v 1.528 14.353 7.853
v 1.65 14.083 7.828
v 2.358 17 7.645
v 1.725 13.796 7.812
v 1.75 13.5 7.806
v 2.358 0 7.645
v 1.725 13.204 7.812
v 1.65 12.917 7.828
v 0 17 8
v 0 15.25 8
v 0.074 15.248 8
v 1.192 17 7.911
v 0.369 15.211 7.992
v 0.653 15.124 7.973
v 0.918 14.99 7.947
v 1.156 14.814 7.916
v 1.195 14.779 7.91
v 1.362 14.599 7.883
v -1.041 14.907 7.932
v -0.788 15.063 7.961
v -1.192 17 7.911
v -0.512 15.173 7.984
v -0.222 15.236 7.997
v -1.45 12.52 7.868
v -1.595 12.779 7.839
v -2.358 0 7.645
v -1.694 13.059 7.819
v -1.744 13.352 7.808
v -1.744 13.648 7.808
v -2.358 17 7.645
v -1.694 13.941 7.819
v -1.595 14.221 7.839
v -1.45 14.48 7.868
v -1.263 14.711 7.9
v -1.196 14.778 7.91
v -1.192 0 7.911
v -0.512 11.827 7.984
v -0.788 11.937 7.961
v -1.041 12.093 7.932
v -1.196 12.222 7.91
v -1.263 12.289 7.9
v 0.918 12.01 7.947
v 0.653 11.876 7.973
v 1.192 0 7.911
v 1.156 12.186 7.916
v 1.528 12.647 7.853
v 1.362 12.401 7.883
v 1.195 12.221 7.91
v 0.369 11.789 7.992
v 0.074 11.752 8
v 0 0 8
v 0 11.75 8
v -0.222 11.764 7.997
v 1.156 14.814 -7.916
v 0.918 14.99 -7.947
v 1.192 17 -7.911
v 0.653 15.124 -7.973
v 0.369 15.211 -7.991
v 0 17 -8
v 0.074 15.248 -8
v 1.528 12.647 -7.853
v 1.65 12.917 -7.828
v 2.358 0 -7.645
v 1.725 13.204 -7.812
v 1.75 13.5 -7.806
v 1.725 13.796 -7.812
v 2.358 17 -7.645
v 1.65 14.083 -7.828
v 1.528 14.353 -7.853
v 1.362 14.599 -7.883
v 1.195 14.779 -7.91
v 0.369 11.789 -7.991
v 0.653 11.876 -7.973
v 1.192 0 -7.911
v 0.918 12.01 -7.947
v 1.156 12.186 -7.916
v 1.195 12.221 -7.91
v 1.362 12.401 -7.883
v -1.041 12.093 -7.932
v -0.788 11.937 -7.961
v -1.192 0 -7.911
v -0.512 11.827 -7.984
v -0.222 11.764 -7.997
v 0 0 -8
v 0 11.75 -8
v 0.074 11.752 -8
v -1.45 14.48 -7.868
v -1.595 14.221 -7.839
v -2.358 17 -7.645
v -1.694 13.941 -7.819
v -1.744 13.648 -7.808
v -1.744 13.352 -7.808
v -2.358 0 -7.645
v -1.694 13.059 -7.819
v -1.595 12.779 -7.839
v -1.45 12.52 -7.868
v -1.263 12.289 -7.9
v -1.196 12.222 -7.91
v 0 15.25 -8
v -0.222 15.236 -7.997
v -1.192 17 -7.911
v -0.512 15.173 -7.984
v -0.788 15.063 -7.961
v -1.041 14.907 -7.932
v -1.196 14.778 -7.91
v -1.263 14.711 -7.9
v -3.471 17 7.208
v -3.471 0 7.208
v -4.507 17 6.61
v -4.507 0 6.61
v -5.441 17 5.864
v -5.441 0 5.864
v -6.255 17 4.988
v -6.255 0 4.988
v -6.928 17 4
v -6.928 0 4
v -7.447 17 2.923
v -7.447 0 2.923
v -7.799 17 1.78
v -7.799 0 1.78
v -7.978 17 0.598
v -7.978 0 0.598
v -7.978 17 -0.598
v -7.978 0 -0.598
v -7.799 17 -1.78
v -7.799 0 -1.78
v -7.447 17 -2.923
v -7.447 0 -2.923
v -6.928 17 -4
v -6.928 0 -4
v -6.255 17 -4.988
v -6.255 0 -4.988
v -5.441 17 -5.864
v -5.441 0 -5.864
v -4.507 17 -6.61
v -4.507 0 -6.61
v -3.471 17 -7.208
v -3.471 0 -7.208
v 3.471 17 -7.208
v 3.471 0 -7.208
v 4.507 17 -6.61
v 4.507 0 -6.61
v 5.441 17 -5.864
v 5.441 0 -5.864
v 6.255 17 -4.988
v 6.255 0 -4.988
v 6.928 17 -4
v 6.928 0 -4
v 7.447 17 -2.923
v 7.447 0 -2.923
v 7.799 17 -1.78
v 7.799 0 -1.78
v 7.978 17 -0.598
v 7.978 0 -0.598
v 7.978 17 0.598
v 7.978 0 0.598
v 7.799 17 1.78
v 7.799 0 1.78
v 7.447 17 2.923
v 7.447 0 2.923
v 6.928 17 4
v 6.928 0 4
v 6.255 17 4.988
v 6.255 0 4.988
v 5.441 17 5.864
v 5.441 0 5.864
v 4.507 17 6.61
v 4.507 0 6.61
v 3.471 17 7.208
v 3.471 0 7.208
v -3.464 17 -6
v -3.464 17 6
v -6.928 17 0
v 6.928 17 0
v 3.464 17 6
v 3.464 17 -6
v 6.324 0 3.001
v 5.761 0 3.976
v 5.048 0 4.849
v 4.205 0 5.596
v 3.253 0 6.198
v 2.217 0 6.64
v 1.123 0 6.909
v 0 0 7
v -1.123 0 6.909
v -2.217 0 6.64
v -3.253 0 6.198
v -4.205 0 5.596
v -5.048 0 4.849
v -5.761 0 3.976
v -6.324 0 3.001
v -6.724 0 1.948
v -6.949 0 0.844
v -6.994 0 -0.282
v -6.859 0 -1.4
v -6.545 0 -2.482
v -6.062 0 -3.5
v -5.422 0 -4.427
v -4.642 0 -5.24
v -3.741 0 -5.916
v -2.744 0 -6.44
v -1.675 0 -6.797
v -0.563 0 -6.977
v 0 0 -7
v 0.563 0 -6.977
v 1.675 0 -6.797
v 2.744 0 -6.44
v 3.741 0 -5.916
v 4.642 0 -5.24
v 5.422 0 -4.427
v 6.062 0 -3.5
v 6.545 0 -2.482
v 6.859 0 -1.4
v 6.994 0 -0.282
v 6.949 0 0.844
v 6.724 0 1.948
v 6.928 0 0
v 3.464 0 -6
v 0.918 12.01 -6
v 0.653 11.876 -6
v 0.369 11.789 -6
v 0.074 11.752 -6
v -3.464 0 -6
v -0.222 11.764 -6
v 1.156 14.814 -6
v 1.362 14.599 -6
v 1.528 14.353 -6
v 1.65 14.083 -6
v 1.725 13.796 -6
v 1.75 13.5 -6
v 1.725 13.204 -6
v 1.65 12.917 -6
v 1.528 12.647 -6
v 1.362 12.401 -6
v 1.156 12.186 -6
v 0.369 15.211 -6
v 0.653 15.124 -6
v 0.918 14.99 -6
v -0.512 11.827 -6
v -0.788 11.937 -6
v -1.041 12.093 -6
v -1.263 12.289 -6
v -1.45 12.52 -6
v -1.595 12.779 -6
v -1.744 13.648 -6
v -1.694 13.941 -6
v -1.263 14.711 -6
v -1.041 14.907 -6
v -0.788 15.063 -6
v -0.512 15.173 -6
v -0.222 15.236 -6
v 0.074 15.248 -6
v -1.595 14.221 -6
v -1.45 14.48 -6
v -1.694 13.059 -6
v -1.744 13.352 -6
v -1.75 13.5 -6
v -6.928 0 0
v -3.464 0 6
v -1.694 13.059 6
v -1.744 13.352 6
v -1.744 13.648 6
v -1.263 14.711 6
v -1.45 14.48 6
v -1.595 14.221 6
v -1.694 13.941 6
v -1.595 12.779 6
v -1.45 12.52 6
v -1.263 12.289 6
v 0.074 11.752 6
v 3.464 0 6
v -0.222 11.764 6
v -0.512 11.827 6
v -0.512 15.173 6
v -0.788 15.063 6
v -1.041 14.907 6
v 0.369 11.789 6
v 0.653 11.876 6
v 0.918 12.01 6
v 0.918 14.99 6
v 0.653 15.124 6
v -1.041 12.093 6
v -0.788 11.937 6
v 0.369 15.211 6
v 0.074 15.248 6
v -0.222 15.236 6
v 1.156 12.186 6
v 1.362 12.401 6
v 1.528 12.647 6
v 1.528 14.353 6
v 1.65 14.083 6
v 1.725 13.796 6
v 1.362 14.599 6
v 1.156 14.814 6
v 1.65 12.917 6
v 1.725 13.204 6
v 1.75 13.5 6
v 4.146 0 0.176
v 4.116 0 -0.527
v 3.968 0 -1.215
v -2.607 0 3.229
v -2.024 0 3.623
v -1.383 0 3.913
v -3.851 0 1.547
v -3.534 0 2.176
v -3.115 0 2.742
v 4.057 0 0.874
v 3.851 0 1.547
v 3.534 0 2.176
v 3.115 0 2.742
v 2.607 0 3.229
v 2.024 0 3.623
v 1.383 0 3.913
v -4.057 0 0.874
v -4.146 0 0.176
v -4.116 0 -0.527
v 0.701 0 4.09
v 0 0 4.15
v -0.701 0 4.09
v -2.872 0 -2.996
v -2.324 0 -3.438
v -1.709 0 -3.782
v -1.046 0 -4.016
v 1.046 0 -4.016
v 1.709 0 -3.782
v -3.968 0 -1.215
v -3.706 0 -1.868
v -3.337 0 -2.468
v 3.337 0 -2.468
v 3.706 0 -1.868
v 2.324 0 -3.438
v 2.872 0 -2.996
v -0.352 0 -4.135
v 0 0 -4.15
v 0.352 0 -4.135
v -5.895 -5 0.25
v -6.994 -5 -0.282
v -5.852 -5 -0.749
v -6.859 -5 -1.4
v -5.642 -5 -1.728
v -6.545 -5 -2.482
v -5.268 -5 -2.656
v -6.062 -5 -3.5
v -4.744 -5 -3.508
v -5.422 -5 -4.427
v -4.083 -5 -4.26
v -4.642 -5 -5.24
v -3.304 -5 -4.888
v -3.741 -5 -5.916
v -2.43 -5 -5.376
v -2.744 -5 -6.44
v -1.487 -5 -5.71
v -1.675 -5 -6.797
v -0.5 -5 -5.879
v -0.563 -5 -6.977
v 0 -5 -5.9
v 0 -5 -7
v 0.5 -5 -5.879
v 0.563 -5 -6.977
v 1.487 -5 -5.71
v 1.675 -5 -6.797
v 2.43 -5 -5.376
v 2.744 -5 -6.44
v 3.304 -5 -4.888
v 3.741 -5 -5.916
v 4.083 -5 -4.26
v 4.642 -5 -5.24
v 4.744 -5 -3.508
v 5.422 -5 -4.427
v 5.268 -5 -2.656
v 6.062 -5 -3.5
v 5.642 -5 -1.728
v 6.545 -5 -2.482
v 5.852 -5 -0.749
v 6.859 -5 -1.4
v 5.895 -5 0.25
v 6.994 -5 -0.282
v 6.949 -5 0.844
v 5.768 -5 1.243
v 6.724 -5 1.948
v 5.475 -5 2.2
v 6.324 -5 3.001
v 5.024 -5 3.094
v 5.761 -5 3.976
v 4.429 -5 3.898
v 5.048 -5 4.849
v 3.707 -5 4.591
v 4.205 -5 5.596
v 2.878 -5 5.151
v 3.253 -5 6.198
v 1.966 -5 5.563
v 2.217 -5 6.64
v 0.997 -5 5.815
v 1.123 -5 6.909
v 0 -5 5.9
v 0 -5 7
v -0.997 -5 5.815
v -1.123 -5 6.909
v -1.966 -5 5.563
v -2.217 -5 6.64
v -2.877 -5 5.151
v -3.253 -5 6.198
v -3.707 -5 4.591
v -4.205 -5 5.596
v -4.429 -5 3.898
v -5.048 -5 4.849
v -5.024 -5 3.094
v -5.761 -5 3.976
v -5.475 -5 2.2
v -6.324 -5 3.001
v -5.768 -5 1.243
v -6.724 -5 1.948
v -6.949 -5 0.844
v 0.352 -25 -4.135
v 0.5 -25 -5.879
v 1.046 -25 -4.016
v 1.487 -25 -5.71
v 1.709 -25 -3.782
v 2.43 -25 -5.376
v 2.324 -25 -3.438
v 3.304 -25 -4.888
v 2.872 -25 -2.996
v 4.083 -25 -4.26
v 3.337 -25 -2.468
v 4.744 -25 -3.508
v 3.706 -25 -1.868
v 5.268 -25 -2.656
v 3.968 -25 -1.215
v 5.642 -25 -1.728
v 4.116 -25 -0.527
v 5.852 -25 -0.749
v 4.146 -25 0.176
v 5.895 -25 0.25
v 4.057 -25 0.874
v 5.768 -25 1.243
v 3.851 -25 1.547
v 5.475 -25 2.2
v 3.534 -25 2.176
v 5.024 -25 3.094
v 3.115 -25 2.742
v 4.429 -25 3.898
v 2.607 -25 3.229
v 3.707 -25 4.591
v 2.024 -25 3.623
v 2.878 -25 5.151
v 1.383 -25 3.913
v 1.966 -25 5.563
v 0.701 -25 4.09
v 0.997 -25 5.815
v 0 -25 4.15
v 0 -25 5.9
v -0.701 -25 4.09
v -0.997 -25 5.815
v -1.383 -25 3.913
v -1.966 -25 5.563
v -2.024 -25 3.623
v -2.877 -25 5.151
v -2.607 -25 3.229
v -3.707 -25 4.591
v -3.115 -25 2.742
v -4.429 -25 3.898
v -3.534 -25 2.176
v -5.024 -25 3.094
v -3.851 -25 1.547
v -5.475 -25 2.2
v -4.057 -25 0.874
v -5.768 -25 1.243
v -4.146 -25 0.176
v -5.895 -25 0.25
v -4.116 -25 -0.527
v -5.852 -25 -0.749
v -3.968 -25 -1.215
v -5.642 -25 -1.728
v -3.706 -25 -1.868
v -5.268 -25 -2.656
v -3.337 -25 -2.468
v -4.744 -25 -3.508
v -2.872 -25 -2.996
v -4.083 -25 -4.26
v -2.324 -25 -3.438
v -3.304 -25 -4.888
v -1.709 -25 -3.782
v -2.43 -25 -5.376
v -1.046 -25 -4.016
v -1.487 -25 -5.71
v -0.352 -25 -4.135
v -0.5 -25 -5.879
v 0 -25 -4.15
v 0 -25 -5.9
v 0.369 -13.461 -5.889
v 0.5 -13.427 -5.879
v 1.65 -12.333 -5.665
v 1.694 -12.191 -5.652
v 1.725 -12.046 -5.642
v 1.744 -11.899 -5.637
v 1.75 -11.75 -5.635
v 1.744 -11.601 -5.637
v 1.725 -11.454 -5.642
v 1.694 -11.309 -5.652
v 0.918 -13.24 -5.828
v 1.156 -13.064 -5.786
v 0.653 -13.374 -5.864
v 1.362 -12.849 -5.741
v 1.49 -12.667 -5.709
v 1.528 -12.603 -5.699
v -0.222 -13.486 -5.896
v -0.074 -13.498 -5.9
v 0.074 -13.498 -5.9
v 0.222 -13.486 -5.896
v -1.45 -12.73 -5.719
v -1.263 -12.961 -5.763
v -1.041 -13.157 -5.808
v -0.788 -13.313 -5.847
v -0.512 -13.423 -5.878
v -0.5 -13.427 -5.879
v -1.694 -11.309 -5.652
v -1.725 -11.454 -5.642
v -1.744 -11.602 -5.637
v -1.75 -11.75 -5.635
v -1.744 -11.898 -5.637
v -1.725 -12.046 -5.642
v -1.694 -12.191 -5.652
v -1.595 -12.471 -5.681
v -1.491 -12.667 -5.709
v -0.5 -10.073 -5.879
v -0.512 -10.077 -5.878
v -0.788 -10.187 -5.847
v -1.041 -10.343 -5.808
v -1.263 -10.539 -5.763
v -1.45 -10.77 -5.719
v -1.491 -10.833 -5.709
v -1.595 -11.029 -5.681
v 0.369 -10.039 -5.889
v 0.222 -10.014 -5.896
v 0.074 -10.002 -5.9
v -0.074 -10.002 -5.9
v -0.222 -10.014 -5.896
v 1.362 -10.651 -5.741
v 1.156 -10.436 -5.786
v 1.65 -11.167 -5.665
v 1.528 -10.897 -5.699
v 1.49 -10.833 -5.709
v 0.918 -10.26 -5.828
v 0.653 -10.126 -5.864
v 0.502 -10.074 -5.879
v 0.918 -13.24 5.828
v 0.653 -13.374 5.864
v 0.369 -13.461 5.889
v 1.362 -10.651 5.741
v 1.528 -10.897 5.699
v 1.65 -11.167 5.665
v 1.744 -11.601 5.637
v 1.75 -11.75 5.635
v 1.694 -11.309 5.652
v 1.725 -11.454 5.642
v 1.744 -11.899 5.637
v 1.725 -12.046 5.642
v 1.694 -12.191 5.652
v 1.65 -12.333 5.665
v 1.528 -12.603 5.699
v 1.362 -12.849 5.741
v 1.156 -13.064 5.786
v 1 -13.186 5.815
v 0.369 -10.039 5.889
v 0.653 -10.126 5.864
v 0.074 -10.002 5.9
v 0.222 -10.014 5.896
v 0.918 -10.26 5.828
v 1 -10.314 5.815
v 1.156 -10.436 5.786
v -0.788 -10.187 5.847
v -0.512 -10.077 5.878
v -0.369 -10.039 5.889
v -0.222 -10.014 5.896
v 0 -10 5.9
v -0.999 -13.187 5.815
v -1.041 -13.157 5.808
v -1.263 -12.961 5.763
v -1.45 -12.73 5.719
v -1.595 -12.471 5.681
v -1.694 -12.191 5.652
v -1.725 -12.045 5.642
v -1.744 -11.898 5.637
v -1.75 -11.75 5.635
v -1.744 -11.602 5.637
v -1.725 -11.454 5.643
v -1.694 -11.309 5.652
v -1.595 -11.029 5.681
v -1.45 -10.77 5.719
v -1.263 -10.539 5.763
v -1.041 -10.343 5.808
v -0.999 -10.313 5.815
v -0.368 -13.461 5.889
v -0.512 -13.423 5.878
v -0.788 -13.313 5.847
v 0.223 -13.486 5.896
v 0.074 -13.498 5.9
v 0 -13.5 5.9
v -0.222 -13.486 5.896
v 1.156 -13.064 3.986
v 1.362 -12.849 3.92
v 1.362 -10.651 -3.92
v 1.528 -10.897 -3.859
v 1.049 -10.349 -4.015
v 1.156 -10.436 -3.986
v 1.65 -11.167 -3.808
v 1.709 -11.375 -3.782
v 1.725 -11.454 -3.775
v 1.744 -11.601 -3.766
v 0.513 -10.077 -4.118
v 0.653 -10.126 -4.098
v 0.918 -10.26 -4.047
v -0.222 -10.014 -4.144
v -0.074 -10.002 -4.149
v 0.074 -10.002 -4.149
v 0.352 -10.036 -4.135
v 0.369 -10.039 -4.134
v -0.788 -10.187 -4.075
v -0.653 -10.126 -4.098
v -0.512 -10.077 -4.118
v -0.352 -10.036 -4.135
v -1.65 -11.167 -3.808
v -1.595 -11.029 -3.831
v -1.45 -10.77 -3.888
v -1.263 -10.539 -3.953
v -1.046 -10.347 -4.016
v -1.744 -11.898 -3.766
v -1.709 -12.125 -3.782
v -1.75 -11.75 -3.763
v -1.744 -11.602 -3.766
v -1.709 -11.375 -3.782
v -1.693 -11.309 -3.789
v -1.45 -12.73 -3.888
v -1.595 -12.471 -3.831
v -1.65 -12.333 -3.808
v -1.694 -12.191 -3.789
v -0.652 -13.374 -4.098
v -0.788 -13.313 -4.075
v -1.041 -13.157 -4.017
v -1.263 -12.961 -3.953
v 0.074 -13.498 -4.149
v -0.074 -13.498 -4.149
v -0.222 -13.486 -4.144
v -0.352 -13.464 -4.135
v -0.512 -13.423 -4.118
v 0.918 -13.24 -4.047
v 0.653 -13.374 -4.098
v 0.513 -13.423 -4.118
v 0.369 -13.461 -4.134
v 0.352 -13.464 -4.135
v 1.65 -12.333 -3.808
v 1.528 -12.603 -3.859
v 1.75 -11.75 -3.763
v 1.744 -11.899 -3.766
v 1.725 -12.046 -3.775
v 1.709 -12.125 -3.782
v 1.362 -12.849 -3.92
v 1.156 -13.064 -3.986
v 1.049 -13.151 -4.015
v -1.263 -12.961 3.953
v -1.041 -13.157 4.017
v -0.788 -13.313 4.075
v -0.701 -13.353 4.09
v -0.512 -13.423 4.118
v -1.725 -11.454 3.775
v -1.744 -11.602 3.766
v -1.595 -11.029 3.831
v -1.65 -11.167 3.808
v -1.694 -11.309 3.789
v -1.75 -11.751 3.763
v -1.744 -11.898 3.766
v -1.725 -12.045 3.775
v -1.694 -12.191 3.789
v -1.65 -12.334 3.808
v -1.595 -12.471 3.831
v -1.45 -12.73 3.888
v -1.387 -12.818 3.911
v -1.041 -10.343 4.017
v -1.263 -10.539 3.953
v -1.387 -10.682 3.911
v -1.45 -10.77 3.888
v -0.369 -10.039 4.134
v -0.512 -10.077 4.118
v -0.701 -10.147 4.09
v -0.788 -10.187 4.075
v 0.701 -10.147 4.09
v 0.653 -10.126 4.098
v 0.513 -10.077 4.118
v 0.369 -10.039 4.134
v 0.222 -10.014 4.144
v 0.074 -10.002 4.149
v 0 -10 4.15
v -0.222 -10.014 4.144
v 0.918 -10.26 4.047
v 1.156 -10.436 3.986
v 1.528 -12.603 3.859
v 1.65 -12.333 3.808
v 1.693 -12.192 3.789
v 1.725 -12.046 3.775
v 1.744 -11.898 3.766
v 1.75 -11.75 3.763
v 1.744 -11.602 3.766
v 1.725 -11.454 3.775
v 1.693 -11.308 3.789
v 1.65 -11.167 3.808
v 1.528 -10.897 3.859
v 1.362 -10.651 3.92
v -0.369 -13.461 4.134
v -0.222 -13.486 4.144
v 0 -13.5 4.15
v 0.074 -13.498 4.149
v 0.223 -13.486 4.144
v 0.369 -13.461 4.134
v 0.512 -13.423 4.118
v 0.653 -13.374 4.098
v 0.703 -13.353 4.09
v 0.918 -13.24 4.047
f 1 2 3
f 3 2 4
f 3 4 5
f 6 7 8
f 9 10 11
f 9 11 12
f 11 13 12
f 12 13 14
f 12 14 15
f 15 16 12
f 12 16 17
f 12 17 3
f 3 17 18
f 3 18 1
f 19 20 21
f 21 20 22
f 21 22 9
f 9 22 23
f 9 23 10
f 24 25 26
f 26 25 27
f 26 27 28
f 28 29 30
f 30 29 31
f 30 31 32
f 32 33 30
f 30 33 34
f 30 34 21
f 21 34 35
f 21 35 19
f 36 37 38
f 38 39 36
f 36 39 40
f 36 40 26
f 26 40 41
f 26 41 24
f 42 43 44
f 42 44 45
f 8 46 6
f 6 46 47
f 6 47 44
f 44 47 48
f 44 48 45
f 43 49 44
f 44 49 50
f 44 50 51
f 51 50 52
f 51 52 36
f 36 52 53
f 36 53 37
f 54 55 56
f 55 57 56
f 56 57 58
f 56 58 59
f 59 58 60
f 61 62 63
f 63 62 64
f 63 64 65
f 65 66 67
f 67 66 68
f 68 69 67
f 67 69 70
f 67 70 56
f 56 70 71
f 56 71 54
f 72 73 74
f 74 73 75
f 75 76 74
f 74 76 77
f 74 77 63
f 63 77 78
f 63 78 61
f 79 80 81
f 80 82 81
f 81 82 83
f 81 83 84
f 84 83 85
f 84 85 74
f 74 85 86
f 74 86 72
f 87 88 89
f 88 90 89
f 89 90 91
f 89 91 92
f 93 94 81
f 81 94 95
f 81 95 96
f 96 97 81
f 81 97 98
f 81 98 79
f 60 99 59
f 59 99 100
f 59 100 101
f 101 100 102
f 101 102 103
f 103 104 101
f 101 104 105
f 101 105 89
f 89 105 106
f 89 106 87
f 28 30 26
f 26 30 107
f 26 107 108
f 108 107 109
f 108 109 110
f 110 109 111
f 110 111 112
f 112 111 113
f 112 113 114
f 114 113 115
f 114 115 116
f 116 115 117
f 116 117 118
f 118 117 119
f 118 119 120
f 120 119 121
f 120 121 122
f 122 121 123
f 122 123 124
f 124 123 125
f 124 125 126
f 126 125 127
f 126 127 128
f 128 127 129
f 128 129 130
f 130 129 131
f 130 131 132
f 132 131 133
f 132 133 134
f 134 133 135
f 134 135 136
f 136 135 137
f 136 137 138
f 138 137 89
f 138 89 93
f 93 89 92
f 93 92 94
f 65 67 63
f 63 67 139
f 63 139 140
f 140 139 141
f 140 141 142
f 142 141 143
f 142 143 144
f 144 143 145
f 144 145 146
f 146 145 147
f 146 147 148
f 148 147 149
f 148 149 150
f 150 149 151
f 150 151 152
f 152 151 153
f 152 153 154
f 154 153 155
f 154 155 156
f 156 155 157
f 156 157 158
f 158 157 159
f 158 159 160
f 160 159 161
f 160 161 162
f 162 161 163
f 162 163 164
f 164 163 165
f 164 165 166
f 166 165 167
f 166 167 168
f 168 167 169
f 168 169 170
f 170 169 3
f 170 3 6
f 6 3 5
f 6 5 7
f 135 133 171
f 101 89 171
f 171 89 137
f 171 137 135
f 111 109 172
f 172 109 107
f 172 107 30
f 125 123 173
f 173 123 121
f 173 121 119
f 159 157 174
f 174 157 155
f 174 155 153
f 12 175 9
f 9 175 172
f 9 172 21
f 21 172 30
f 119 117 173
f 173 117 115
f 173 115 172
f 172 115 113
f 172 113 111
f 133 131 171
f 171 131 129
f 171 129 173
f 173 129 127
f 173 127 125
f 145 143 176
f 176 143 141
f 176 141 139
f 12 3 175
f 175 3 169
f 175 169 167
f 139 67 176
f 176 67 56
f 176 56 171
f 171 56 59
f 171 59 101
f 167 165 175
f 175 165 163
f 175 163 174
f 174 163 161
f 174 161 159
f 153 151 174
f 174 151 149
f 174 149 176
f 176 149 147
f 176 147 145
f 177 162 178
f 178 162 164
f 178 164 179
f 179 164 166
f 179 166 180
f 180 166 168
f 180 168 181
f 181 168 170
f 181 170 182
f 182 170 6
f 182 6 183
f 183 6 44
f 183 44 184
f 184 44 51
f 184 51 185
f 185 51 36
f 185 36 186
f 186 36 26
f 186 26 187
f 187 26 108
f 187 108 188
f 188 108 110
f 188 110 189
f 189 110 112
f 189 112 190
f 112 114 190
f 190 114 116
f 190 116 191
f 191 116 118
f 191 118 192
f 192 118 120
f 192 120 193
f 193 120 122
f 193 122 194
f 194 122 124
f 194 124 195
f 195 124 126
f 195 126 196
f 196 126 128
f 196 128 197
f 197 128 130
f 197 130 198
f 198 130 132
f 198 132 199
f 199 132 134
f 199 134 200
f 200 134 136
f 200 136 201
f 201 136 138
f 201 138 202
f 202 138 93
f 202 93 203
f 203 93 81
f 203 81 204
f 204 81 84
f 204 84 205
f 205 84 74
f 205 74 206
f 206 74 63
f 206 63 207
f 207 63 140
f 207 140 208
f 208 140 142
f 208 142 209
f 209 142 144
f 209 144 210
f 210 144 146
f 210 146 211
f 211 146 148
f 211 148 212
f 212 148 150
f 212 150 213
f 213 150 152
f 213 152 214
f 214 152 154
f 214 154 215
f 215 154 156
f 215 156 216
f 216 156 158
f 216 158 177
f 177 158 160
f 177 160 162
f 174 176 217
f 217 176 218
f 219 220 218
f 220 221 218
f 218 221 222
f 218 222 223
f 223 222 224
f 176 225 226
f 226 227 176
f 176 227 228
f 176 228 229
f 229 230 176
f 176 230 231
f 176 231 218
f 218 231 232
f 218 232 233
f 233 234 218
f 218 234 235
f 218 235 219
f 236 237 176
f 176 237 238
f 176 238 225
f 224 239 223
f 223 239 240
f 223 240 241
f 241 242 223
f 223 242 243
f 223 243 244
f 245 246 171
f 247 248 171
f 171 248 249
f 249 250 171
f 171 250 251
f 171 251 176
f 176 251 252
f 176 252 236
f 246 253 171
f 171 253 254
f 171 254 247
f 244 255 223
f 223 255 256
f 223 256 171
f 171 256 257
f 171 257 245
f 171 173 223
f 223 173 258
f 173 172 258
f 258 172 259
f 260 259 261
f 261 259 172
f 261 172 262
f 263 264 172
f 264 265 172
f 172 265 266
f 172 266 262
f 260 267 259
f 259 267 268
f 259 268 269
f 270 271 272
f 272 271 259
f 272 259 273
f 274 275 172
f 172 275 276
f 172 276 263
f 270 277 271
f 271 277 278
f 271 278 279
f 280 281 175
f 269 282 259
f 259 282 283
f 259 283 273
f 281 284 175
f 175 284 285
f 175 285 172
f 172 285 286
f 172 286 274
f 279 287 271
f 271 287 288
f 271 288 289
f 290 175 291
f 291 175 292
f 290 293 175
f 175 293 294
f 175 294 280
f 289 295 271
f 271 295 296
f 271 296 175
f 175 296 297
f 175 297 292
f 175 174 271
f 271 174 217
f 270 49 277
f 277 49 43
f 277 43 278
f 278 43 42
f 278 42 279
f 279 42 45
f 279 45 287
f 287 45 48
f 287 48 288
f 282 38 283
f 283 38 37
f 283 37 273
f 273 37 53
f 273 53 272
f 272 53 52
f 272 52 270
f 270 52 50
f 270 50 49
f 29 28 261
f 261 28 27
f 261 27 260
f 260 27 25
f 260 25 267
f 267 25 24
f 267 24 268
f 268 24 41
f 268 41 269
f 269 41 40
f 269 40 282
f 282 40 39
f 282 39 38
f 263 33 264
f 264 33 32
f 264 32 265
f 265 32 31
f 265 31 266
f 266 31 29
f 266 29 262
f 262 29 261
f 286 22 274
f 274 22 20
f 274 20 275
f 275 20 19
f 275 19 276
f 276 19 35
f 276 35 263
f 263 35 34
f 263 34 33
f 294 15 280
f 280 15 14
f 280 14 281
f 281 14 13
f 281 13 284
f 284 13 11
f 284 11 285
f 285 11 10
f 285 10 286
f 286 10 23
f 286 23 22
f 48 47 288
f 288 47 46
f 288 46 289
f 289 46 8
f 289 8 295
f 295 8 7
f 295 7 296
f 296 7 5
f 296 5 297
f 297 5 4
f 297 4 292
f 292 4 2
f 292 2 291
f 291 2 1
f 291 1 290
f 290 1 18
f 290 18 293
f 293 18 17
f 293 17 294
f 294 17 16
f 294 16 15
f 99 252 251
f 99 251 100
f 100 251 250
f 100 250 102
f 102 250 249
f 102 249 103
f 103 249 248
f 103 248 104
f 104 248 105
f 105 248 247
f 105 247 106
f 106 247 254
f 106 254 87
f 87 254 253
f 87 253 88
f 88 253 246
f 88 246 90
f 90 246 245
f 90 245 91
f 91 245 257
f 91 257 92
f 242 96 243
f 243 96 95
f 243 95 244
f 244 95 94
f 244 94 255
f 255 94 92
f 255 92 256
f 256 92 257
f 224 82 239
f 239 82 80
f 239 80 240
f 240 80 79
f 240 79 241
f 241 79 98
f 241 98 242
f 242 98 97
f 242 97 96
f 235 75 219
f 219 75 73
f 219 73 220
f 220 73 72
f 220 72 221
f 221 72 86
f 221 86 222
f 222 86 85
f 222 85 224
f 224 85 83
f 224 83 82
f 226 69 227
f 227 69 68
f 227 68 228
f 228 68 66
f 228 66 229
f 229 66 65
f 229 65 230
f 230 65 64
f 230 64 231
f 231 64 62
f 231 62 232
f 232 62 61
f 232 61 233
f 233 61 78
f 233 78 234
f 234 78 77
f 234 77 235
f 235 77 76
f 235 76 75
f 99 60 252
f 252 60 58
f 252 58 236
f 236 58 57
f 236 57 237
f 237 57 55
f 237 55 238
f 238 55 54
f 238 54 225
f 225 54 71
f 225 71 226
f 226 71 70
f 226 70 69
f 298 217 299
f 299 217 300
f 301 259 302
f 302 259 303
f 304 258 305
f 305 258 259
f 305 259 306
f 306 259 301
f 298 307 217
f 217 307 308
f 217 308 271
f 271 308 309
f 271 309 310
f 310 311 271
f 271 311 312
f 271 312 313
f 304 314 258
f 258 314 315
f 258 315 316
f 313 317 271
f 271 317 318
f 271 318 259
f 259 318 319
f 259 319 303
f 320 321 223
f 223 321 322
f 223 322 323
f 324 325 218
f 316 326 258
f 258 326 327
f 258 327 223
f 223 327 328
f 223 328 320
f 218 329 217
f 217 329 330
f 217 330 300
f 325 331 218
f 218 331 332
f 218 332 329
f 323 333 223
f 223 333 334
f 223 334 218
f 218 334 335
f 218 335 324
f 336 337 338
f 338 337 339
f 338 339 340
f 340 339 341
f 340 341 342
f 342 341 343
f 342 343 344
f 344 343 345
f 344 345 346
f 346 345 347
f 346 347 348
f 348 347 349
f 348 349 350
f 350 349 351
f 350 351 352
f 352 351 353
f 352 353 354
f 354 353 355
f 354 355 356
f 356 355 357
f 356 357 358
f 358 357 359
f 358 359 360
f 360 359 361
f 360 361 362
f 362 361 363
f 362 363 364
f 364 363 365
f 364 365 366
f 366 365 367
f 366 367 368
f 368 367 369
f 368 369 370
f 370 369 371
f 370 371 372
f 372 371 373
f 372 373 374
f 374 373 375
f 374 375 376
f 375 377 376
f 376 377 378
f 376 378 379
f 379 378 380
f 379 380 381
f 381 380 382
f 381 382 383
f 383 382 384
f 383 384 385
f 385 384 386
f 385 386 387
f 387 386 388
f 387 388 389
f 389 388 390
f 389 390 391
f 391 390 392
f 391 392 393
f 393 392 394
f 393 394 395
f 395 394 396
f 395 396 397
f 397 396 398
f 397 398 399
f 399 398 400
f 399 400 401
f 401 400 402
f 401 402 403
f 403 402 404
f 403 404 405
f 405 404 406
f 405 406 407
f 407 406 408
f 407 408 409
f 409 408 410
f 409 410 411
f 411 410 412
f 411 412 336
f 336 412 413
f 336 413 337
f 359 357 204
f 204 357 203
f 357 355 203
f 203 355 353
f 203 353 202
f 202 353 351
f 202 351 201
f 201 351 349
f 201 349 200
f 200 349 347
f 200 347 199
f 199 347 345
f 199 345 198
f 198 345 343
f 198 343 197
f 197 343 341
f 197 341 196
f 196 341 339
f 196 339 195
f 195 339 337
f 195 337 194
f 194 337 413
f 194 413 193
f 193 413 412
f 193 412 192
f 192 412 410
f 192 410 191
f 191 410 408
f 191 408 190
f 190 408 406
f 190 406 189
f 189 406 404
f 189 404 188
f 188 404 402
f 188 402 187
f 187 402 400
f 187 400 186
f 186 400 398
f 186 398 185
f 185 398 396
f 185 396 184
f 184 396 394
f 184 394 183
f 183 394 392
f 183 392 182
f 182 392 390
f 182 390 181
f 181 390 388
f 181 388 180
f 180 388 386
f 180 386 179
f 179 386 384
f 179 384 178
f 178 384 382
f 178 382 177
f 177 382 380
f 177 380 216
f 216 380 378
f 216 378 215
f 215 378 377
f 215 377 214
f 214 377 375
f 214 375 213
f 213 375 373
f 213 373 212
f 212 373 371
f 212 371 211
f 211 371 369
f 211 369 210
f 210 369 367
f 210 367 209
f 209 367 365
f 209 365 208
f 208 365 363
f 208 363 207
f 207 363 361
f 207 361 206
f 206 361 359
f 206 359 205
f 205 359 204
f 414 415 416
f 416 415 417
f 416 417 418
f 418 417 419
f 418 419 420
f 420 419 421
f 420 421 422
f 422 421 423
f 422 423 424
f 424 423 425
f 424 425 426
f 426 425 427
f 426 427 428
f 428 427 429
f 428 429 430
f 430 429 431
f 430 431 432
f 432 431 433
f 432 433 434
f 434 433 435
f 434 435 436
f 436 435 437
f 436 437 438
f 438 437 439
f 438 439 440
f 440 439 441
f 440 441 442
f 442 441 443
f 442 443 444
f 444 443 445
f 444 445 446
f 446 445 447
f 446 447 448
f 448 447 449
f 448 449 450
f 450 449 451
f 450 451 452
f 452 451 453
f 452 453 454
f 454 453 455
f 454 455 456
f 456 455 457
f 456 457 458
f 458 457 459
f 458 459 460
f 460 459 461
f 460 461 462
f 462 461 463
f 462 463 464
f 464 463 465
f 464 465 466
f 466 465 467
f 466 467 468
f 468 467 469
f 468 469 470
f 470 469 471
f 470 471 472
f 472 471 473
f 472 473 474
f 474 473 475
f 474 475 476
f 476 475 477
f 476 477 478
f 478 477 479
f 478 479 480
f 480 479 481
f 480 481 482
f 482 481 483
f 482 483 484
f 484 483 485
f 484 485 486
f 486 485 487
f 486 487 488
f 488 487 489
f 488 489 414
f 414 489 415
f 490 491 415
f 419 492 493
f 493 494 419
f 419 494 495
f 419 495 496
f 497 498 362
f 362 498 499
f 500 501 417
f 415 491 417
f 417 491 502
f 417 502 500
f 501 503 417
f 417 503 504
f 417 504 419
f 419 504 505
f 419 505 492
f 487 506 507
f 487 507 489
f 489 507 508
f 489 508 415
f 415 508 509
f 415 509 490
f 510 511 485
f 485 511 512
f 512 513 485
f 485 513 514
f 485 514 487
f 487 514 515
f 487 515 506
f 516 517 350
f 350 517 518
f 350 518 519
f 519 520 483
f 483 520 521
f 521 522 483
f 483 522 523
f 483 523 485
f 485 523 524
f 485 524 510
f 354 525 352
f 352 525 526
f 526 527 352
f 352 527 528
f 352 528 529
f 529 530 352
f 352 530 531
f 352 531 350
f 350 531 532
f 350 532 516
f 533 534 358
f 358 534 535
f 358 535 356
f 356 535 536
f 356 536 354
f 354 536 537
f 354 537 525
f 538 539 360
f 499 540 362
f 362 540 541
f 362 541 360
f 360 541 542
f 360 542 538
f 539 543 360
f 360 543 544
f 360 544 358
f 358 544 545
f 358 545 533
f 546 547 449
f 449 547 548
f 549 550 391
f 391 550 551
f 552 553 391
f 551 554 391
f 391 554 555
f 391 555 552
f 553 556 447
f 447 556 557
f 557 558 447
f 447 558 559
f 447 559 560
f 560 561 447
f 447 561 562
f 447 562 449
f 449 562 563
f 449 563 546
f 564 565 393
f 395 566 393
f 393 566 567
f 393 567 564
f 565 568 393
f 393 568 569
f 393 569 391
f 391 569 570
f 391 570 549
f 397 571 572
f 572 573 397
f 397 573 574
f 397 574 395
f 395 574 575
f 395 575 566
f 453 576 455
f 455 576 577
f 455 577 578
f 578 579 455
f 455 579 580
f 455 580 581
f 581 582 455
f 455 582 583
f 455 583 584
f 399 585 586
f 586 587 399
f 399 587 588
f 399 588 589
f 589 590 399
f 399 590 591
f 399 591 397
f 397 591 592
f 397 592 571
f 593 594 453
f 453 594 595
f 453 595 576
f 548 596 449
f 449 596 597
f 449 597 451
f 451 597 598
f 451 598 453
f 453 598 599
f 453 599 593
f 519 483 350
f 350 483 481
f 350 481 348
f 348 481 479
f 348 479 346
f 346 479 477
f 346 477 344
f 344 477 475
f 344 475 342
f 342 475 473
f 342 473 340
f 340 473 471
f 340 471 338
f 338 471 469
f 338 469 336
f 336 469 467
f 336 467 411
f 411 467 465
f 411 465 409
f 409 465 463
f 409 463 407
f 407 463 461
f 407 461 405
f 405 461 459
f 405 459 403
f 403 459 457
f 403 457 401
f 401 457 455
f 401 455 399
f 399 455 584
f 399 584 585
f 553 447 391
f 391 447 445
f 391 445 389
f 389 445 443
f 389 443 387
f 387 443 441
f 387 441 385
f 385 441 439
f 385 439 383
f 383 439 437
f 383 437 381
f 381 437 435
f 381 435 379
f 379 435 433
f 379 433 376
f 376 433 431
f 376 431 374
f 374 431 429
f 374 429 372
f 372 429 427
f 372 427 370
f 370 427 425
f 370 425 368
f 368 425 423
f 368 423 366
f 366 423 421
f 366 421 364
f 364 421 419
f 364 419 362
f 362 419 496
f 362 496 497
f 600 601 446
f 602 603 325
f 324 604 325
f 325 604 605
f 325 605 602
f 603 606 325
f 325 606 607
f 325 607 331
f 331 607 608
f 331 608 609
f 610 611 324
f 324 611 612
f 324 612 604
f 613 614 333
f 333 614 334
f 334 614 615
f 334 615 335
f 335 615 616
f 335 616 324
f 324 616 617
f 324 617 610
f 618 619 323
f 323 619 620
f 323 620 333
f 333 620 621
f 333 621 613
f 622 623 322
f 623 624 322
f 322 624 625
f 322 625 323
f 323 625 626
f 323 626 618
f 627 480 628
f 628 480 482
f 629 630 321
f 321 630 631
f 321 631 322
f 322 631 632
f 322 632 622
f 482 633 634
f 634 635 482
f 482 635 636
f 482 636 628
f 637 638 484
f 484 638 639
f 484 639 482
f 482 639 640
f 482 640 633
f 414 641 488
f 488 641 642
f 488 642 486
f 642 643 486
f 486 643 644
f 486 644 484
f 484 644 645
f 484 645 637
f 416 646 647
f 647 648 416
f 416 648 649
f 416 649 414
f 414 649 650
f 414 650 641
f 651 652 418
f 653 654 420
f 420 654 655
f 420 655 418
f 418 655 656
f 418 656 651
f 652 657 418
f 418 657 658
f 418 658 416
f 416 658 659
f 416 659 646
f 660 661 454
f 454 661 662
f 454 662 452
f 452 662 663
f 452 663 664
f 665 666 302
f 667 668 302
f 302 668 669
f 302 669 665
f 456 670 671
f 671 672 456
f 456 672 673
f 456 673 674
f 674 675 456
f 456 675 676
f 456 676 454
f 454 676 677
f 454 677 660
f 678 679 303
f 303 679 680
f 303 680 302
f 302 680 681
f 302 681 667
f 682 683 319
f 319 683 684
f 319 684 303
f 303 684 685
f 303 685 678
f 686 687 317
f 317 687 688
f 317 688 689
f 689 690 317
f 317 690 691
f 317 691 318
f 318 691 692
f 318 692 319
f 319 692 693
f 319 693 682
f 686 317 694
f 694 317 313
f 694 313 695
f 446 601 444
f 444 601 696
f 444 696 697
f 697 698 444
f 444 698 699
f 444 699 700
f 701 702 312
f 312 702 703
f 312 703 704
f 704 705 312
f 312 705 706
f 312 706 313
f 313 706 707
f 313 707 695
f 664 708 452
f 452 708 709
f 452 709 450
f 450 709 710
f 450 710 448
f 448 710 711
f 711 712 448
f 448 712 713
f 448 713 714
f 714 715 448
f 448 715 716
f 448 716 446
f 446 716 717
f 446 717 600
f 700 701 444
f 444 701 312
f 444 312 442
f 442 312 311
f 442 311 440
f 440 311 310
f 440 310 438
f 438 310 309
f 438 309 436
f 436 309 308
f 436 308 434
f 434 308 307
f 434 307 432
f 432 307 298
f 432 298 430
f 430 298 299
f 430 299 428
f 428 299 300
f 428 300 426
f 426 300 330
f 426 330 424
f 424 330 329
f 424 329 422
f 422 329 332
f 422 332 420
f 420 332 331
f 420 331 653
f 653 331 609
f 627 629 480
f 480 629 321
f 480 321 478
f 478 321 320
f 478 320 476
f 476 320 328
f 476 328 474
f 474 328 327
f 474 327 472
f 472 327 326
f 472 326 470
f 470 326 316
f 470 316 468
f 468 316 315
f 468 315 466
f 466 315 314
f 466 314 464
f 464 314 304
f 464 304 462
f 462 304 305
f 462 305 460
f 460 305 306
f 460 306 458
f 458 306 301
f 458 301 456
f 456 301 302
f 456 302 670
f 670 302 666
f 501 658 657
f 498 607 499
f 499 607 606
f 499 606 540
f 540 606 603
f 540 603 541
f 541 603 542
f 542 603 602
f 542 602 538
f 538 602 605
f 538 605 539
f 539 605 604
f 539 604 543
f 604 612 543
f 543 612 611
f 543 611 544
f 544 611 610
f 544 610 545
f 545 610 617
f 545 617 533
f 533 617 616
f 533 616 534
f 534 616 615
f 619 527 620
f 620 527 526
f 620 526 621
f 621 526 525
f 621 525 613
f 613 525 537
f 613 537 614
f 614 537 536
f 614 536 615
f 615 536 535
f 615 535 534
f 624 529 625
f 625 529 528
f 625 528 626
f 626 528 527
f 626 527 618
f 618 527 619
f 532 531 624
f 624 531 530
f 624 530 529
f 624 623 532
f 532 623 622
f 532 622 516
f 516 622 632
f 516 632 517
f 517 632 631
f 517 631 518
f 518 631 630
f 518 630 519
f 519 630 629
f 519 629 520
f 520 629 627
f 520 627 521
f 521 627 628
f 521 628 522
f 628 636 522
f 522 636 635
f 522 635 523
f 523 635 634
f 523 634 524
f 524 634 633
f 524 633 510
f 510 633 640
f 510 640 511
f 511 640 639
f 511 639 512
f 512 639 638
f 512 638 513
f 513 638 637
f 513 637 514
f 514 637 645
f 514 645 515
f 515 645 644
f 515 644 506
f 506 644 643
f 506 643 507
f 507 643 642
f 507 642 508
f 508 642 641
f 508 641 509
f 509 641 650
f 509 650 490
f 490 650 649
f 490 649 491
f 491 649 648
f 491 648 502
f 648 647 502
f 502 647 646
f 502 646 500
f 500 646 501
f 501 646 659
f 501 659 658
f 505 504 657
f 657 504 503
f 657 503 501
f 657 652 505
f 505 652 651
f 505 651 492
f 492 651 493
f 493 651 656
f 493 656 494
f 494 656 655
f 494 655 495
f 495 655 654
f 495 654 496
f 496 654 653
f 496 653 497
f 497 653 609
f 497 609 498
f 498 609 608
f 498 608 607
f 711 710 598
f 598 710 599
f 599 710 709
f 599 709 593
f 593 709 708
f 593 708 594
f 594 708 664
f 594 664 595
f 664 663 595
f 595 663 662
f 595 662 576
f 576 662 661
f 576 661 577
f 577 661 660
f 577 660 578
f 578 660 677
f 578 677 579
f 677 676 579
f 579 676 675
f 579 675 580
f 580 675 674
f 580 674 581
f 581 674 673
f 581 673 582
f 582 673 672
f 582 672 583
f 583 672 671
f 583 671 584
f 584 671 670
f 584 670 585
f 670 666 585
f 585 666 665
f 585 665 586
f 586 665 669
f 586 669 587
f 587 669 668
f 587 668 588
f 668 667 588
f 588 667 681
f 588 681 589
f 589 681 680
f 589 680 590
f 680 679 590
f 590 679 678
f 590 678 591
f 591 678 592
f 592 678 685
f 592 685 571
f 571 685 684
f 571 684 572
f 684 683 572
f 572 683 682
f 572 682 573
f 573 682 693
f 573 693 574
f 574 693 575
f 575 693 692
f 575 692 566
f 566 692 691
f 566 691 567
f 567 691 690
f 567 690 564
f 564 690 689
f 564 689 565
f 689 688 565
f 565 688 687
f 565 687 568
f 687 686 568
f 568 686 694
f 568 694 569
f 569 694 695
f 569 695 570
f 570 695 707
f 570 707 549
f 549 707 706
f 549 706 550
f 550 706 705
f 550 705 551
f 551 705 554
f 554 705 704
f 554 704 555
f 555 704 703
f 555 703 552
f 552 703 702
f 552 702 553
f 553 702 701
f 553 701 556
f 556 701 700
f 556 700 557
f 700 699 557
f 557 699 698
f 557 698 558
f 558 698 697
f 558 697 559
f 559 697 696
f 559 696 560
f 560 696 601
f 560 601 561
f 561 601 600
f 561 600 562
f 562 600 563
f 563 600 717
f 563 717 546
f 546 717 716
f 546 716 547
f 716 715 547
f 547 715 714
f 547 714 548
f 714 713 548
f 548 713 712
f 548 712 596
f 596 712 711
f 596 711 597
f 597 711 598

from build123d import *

# Parameters (mm, degrees)
SKETCH1_R               = 8
BOSS_EXTRUDE1_DEPTH     = 17
CUT_EXTRUDE2_DEPTH      = 24.430749028
CUT_EXTRUDE2_DEPTH_BACK = 24.430749028
SKETCH3_R               = 5.900211262
SKETCH3_R_2             = 4.15
BOSS_EXTRUDE2_DEPTH     = 25
CUT_EXTRUDE3_DEPTH      = 28.440845526
CUT_EXTRUDE3_DEPTH_BACK = 28.440845526
SKETCH4_R               = 1.75
SKETCH5_R               = 7
SKETCH5_R_2             = 5.900211262
BOSS_EXTRUDE3_DEPTH     = 5


with BuildPart() as part:
    # Sketch1 → Boss-Extrude1 (new body)
    with BuildSketch(Plane.XZ):
        with Locations(Location((0, 0, 0), (0, 0, 270))):
            Circle(SKETCH1_R)
        Polygon((6.92820323, 0), (3.464101615, 6), (-3.464101615, 6), (-6.92820323, 0), (-3.464101615, -6), (3.464101615, -6), align=None, mode=Mode.SUBTRACT)
    extrude(amount=-BOSS_EXTRUDE1_DEPTH)

    # Sketch2 → Cut-Extrude2 (cut, two sides: drawn at the far end of the back side and taken through both)
    with BuildSketch(Plane.XY.offset(-6).offset(-CUT_EXTRUDE2_DEPTH_BACK)):
        with BuildLine():
            ThreePointArc((-1.75, 13.5), (-1.237436867, 12.262563133), (0, 11.75))
            ThreePointArc((0, 11.75), (1.237436867, 12.262563133), (1.75, 13.5))
            ThreePointArc((1.75, 13.5), (1.237436867, 14.737436867), (0, 15.25))
            ThreePointArc((0, 15.25), (-1.237436867, 14.737436867), (-1.75, 13.5))
        make_face()
    extrude(amount=CUT_EXTRUDE2_DEPTH + CUT_EXTRUDE2_DEPTH_BACK, mode=Mode.SUBTRACT)



with BuildPart() as body_2:
    # Sketch3 → Boss-Extrude2 (new body)
    with BuildSketch(Plane.XZ):
        with Locations(Location((0, 0, 0), (0, 0, 270))):
            Circle(SKETCH3_R)
        with Locations(Location((0, 0, 0), (0, 0, 270))):
            Circle(SKETCH3_R_2, mode=Mode.SUBTRACT)
    extrude(amount=BOSS_EXTRUDE2_DEPTH)

    # Sketch4 → Cut-Extrude3 (cut, two sides: drawn at the far end of the back side and taken through both)
    with BuildSketch(Plane.XY.offset(-CUT_EXTRUDE3_DEPTH_BACK)):
        with Locations((0, -11.75)):
            Circle(SKETCH4_R)
    extrude(amount=CUT_EXTRUDE3_DEPTH + CUT_EXTRUDE3_DEPTH_BACK, mode=Mode.SUBTRACT)


with BuildPart() as part_1:
    add(part.part)

    add(body_2.part)  # Boss-Extrude3 merges body 2
    # Sketch5 → Boss-Extrude3 (add)
    with BuildSketch(Plane.XZ):
        with Locations(Location((0, 0, 0), (0, 0, 270))):
            Circle(SKETCH5_R)
        with Locations(Location((0, 0, 0), (0, 0, 270))):
            Circle(SKETCH5_R_2, mode=Mode.SUBTRACT)
    extrude(amount=BOSS_EXTRUDE3_DEPTH)


solid = part_1.part
